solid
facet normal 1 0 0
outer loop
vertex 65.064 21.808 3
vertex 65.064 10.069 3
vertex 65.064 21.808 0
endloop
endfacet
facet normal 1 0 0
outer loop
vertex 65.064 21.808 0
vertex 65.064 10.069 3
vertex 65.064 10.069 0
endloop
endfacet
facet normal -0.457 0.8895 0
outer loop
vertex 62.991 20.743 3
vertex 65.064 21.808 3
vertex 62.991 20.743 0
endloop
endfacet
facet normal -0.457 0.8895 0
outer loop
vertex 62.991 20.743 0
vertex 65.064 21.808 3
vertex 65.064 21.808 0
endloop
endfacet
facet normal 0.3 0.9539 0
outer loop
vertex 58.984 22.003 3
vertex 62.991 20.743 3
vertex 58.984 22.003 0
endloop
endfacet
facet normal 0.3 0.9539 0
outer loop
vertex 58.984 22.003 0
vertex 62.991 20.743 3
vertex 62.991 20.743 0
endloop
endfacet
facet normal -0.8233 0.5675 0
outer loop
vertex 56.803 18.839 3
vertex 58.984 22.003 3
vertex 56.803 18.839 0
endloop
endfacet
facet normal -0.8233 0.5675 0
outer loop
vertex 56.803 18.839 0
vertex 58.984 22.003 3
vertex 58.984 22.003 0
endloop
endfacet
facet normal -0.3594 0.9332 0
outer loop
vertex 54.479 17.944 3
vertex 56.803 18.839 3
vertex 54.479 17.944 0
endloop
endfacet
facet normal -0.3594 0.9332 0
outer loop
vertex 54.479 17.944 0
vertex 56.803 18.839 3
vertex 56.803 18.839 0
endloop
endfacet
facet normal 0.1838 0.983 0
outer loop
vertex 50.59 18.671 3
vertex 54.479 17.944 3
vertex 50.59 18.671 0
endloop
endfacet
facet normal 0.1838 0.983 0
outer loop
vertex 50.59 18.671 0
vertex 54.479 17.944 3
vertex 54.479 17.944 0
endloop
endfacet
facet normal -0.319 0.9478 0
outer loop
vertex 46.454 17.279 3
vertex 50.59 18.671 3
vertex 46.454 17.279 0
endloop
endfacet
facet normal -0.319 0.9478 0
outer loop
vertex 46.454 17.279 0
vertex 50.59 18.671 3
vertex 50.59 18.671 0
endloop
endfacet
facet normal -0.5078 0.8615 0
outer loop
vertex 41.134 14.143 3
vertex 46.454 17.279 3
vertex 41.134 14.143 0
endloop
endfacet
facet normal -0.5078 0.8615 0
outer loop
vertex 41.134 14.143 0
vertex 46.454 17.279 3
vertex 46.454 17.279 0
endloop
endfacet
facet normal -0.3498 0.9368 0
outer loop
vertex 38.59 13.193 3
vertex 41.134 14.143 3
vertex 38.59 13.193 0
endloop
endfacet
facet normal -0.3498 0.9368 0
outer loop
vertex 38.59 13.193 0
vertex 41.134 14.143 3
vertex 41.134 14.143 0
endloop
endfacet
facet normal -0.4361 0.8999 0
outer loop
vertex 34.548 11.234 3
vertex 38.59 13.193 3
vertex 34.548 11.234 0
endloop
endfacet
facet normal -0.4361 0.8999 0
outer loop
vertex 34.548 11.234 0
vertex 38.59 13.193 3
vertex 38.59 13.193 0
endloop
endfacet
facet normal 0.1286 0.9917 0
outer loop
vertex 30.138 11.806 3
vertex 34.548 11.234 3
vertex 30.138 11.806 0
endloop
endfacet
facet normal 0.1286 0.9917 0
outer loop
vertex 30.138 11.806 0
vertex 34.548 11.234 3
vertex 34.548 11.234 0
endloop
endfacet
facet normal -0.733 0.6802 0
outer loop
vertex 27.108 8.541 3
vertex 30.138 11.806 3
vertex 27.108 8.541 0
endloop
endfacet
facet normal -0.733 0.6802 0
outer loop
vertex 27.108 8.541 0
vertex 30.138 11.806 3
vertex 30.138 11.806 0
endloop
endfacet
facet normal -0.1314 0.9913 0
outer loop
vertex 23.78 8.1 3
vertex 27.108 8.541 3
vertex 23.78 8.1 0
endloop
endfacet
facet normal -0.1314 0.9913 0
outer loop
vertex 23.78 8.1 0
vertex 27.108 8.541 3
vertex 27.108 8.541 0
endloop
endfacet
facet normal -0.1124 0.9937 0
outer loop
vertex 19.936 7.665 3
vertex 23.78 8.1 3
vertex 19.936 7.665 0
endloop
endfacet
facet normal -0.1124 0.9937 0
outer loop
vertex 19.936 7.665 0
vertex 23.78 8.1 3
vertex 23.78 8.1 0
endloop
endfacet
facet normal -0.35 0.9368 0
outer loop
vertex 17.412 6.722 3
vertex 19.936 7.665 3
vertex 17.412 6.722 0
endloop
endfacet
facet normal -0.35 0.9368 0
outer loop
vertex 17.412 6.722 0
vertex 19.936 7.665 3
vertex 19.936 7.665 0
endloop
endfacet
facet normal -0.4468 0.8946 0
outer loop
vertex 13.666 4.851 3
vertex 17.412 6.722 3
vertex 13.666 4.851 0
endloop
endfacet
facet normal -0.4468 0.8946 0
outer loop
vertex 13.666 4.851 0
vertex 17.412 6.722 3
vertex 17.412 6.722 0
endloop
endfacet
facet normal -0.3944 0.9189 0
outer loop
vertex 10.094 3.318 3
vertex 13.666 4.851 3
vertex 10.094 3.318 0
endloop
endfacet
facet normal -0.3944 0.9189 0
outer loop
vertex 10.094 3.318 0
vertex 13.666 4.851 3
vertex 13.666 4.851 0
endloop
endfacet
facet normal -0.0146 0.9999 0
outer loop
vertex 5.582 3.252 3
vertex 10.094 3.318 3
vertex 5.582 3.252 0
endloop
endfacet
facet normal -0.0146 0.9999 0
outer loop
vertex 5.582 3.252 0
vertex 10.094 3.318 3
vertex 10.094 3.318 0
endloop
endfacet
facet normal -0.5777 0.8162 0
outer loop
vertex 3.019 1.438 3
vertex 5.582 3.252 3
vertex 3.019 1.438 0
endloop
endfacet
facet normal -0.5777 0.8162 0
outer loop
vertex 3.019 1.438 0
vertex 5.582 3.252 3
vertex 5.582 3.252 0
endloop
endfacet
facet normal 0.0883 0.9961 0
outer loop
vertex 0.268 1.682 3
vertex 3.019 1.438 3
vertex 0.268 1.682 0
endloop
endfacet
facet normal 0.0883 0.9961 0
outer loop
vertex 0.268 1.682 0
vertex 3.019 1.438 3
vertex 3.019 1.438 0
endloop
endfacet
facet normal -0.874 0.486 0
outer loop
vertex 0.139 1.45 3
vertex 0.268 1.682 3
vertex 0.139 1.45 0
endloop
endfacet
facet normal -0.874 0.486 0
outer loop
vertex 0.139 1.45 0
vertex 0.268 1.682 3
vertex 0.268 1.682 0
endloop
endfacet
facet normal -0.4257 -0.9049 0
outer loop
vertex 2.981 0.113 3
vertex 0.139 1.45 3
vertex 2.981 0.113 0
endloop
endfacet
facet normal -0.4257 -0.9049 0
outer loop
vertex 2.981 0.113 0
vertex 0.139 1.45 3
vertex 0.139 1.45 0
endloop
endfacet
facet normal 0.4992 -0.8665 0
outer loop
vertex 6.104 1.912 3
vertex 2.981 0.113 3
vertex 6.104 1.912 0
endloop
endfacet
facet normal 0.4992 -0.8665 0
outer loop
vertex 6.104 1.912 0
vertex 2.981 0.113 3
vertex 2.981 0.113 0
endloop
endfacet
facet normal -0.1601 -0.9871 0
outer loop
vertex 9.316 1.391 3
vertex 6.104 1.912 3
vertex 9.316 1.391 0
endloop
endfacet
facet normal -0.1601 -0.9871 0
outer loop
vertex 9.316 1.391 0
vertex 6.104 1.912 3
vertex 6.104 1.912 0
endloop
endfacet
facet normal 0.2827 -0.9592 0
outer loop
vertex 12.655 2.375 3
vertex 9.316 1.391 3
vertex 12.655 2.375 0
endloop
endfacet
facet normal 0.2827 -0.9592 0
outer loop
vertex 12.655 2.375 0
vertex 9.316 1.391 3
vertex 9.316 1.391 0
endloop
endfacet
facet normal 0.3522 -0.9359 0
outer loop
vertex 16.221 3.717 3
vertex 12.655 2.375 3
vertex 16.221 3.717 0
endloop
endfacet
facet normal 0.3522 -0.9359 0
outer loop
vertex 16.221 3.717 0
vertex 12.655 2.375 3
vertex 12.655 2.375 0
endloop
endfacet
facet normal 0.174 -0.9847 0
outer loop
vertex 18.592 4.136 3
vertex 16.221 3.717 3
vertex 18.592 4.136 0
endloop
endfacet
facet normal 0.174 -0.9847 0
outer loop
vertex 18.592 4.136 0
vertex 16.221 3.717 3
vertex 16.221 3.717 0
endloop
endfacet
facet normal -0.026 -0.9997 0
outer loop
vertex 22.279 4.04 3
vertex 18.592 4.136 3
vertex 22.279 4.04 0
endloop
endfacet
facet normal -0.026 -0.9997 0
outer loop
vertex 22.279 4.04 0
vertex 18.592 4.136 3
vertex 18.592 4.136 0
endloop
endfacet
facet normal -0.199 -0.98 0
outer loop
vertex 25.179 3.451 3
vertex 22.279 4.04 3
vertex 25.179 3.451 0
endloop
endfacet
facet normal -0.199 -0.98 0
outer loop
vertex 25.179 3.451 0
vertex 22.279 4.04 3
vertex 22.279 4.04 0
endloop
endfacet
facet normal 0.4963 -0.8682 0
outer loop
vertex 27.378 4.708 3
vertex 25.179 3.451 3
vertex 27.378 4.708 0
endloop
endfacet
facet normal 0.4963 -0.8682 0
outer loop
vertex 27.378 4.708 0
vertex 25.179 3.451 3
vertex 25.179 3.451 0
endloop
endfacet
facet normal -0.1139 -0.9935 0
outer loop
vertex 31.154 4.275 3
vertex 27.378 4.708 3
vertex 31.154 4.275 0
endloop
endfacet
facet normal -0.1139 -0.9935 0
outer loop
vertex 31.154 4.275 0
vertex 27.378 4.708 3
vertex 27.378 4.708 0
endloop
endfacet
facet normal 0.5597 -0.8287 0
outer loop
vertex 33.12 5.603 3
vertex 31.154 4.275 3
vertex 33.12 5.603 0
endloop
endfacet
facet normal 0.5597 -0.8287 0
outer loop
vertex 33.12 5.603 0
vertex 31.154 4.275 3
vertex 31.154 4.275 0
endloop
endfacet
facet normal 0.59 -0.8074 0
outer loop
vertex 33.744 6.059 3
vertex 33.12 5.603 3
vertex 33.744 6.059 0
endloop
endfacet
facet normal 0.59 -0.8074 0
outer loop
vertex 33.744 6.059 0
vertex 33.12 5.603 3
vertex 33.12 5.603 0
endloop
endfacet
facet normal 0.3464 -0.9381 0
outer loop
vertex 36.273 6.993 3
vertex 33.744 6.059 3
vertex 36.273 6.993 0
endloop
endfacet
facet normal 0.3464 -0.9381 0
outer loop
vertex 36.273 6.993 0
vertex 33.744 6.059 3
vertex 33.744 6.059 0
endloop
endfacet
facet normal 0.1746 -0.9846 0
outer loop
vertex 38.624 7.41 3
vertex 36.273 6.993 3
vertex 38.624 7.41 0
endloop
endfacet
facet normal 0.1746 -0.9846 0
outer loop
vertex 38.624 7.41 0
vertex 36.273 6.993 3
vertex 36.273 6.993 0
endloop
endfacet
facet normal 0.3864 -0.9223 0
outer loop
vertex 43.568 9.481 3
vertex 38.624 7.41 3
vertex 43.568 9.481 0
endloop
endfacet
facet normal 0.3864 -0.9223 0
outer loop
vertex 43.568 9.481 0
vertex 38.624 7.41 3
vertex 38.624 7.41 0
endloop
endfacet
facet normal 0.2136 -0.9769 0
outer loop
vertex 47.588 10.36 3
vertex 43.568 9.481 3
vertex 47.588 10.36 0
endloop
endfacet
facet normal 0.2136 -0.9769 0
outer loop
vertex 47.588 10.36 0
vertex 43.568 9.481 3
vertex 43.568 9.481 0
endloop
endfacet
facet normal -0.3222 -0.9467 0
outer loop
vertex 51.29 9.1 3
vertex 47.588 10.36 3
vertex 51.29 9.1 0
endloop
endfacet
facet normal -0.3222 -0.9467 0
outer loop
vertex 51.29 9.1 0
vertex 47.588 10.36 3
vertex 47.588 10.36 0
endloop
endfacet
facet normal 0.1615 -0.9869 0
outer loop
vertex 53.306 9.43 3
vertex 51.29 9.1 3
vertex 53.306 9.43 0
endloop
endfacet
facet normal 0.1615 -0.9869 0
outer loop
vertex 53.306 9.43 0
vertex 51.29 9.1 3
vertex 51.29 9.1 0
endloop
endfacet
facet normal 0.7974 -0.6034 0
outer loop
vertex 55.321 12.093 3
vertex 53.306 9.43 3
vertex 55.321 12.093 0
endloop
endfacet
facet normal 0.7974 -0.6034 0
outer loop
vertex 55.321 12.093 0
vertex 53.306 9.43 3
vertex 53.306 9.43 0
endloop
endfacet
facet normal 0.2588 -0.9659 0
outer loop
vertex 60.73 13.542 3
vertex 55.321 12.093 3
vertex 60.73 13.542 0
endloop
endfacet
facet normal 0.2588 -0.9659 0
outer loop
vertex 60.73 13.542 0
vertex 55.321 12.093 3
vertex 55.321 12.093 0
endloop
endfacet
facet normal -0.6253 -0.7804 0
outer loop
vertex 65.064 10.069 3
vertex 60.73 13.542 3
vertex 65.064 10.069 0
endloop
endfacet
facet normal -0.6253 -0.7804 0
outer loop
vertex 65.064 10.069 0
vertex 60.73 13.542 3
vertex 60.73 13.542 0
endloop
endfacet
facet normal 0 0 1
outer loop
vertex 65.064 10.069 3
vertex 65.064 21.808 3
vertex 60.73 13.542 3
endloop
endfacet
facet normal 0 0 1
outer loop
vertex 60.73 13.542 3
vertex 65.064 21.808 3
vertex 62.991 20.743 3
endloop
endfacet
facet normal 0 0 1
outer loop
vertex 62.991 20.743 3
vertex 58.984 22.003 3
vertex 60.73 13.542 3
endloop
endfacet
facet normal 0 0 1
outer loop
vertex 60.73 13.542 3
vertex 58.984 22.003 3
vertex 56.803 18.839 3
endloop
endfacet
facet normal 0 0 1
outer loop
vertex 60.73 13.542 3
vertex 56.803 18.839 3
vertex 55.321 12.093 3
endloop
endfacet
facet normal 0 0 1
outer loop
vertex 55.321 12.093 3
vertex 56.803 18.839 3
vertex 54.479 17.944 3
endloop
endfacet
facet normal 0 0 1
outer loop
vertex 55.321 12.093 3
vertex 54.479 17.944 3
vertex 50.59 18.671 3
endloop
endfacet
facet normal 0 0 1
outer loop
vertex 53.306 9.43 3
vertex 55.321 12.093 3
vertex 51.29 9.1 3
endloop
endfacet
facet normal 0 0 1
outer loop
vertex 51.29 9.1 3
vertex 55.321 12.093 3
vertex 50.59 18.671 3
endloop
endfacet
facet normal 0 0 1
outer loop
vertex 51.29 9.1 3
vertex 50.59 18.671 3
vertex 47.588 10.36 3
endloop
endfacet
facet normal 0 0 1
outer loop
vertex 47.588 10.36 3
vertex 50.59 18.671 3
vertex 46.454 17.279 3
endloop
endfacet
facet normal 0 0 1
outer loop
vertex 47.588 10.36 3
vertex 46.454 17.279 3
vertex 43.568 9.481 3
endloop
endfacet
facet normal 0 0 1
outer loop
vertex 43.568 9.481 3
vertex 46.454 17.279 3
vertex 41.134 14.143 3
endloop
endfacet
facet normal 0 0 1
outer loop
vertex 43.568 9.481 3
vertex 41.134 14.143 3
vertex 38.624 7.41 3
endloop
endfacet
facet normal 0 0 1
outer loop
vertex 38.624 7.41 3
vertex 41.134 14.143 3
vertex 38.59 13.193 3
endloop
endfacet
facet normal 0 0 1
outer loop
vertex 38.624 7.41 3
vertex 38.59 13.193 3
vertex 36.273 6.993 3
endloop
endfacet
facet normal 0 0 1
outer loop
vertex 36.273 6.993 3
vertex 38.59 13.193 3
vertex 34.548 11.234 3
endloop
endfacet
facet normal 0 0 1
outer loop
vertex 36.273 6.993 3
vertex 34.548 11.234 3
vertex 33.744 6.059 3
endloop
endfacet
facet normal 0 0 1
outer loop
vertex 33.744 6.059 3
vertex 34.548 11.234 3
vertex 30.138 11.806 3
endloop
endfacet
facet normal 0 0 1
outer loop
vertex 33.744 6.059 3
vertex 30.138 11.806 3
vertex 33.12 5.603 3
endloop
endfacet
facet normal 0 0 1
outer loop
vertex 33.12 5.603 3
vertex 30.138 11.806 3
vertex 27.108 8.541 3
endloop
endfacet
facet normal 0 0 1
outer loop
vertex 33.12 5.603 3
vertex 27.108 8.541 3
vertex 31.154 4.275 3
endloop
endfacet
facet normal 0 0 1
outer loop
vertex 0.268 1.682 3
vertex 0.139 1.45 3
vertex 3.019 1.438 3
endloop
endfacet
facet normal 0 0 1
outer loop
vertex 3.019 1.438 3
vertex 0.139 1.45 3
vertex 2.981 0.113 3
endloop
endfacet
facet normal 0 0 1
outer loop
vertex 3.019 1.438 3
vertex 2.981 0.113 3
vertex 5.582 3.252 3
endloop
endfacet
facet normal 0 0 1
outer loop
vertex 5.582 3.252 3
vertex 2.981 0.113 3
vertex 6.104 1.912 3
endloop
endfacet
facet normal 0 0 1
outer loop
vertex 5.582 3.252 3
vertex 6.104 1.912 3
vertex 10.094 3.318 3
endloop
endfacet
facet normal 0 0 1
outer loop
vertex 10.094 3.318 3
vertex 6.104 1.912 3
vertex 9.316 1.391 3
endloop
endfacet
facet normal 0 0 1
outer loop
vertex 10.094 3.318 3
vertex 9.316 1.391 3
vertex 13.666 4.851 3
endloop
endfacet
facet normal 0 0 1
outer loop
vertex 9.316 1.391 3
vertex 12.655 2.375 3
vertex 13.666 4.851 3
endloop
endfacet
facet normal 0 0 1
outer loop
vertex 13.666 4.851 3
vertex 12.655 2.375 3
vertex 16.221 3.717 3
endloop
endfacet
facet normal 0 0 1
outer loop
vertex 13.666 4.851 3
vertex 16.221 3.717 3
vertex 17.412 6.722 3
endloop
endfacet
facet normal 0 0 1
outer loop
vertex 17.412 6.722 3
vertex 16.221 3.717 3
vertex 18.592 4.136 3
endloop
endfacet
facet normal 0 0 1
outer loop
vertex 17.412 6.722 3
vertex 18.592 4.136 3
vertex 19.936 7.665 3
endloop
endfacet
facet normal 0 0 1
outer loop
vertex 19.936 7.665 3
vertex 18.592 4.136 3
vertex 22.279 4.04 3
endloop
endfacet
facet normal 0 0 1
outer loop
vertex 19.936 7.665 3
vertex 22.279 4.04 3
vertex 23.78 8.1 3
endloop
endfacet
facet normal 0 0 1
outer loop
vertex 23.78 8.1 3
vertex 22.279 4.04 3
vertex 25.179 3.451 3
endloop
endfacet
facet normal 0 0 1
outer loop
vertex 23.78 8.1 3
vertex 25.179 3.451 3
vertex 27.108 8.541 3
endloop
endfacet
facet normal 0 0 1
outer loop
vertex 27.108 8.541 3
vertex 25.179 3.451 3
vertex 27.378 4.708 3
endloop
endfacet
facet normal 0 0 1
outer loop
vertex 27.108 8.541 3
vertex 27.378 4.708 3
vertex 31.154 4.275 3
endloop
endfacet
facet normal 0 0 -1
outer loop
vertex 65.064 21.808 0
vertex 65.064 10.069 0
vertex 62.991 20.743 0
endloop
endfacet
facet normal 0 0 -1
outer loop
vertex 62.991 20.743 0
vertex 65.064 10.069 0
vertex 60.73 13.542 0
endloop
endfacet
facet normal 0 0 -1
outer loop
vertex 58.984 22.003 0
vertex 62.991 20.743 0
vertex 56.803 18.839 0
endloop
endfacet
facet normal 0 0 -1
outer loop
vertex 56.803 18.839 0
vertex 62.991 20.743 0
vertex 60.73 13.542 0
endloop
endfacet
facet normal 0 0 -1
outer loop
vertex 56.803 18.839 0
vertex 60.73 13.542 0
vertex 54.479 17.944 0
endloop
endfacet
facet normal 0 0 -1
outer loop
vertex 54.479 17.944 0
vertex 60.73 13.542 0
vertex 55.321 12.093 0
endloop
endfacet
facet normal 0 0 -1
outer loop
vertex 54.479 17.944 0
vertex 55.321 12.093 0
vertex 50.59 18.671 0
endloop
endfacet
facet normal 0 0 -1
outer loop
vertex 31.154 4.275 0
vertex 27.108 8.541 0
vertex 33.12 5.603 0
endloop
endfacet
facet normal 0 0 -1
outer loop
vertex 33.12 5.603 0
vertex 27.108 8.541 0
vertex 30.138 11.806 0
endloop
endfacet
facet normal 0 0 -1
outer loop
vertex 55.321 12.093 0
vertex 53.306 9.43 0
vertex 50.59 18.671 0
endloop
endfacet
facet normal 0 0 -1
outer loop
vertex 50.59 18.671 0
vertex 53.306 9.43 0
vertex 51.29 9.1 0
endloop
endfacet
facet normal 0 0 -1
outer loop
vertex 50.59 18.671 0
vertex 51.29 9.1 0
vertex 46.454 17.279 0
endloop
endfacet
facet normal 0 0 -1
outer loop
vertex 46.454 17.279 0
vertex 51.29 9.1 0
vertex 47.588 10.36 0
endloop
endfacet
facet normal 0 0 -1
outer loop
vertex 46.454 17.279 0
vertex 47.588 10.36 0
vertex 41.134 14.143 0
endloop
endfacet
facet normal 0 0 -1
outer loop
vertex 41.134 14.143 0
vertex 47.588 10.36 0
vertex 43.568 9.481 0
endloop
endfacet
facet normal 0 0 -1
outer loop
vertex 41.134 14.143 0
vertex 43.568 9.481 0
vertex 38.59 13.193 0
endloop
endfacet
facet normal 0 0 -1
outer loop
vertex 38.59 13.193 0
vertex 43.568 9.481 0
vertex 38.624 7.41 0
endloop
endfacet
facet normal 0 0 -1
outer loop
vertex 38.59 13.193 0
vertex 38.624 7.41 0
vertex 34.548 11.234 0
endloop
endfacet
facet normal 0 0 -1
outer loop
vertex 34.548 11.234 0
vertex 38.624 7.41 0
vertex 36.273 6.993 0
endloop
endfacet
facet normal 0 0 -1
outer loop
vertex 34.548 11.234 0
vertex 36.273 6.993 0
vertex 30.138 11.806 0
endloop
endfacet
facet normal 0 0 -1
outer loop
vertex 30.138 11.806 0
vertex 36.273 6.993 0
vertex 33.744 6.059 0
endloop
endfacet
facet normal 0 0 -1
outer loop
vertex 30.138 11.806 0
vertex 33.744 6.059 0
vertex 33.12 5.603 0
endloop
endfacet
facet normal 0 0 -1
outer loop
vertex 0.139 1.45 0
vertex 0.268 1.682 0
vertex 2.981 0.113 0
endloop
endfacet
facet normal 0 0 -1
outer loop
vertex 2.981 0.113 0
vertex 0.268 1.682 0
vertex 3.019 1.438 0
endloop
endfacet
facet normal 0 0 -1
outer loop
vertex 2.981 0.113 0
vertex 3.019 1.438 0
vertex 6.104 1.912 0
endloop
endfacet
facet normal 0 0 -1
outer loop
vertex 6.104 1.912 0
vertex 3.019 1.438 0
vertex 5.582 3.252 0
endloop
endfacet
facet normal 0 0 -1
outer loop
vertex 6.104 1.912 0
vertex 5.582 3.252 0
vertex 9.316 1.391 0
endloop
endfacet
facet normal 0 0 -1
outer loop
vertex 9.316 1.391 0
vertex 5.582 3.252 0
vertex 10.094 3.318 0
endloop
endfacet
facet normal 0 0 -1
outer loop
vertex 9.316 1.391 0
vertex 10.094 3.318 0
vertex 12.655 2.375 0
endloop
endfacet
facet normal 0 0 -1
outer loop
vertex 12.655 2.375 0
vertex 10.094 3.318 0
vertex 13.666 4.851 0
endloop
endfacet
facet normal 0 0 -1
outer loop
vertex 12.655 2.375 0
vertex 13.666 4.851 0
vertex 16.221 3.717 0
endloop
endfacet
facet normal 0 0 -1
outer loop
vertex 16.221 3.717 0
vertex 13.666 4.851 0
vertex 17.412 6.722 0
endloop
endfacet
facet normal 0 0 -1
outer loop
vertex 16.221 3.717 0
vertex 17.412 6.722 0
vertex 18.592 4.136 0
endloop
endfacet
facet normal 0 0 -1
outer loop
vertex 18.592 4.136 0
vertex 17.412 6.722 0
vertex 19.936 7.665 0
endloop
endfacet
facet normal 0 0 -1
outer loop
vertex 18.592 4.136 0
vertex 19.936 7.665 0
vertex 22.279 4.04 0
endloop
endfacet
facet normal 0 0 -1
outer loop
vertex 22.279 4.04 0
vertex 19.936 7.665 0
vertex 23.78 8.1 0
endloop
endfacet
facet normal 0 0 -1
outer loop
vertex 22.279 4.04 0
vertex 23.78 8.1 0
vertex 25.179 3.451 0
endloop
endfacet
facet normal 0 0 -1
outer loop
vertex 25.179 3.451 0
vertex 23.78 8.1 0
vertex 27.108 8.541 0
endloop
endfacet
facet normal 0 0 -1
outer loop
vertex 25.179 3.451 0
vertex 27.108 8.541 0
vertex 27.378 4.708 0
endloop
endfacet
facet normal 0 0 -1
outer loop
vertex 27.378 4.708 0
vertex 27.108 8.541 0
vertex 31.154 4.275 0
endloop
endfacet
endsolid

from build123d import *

# Parameters (mm, degrees)
AUFSATZ_LINEAR_AUSTRAGEN1_DEPTH = 3


with BuildPart() as part:
    # Model → Aufsatz-Linear austragen1 (new body)
    with BuildSketch(Plane.XY):
        Polygon((65.064121, 21.807638525), (62.991032211, 20.74255457), (58.984084126, 22.00272439), (56.803026288, 18.838800991), (54.47947364, 17.944388553), (50.590045168, 18.671312469), (46.453572189, 17.279002848), (41.134110077, 14.142873543), (38.589728344, 13.192799771), (34.5476256, 11.233834156), (30.138450774, 11.805962104), (27.107969747, 8.540929476), (23.780046409, 8.100068659), (19.936127337, 7.664785218), (17.41204954, 6.721746516), (13.666478399, 4.851440527), (10.094159276, 3.31838703), (5.581557396, 3.252404134), (3.018679888, 1.437790494), (0.267615815, 1.681687606), (0.139255665, 1.450037519), (2.981259215, 0.112718703), (6.103803639, 1.911841244), (9.316252445, 1.390545324), (12.654979952, 2.375260761), (16.2205293, 3.716688419), (18.59217244, 4.136227412), (22.278782524, 4.040377998), (25.178549561, 3.451362989), (27.378100316, 4.707930745), (31.154159786, 4.275156188), (33.120124598, 5.602792152), (33.743945474, 6.05917628), (36.273485131, 6.993163334), (38.623931318, 7.409502482), (43.568119128, 9.480736692), (47.587851937, 10.360104548), (51.289746217, 9.100216289), (53.306429565, 9.430364623), (55.321012546, 12.093179433), (60.7300212, 13.5422604), (65.064121, 10.068977561), align=None)
    extrude(amount=AUFSATZ_LINEAR_AUSTRAGEN1_DEPTH)


solid = part.part
